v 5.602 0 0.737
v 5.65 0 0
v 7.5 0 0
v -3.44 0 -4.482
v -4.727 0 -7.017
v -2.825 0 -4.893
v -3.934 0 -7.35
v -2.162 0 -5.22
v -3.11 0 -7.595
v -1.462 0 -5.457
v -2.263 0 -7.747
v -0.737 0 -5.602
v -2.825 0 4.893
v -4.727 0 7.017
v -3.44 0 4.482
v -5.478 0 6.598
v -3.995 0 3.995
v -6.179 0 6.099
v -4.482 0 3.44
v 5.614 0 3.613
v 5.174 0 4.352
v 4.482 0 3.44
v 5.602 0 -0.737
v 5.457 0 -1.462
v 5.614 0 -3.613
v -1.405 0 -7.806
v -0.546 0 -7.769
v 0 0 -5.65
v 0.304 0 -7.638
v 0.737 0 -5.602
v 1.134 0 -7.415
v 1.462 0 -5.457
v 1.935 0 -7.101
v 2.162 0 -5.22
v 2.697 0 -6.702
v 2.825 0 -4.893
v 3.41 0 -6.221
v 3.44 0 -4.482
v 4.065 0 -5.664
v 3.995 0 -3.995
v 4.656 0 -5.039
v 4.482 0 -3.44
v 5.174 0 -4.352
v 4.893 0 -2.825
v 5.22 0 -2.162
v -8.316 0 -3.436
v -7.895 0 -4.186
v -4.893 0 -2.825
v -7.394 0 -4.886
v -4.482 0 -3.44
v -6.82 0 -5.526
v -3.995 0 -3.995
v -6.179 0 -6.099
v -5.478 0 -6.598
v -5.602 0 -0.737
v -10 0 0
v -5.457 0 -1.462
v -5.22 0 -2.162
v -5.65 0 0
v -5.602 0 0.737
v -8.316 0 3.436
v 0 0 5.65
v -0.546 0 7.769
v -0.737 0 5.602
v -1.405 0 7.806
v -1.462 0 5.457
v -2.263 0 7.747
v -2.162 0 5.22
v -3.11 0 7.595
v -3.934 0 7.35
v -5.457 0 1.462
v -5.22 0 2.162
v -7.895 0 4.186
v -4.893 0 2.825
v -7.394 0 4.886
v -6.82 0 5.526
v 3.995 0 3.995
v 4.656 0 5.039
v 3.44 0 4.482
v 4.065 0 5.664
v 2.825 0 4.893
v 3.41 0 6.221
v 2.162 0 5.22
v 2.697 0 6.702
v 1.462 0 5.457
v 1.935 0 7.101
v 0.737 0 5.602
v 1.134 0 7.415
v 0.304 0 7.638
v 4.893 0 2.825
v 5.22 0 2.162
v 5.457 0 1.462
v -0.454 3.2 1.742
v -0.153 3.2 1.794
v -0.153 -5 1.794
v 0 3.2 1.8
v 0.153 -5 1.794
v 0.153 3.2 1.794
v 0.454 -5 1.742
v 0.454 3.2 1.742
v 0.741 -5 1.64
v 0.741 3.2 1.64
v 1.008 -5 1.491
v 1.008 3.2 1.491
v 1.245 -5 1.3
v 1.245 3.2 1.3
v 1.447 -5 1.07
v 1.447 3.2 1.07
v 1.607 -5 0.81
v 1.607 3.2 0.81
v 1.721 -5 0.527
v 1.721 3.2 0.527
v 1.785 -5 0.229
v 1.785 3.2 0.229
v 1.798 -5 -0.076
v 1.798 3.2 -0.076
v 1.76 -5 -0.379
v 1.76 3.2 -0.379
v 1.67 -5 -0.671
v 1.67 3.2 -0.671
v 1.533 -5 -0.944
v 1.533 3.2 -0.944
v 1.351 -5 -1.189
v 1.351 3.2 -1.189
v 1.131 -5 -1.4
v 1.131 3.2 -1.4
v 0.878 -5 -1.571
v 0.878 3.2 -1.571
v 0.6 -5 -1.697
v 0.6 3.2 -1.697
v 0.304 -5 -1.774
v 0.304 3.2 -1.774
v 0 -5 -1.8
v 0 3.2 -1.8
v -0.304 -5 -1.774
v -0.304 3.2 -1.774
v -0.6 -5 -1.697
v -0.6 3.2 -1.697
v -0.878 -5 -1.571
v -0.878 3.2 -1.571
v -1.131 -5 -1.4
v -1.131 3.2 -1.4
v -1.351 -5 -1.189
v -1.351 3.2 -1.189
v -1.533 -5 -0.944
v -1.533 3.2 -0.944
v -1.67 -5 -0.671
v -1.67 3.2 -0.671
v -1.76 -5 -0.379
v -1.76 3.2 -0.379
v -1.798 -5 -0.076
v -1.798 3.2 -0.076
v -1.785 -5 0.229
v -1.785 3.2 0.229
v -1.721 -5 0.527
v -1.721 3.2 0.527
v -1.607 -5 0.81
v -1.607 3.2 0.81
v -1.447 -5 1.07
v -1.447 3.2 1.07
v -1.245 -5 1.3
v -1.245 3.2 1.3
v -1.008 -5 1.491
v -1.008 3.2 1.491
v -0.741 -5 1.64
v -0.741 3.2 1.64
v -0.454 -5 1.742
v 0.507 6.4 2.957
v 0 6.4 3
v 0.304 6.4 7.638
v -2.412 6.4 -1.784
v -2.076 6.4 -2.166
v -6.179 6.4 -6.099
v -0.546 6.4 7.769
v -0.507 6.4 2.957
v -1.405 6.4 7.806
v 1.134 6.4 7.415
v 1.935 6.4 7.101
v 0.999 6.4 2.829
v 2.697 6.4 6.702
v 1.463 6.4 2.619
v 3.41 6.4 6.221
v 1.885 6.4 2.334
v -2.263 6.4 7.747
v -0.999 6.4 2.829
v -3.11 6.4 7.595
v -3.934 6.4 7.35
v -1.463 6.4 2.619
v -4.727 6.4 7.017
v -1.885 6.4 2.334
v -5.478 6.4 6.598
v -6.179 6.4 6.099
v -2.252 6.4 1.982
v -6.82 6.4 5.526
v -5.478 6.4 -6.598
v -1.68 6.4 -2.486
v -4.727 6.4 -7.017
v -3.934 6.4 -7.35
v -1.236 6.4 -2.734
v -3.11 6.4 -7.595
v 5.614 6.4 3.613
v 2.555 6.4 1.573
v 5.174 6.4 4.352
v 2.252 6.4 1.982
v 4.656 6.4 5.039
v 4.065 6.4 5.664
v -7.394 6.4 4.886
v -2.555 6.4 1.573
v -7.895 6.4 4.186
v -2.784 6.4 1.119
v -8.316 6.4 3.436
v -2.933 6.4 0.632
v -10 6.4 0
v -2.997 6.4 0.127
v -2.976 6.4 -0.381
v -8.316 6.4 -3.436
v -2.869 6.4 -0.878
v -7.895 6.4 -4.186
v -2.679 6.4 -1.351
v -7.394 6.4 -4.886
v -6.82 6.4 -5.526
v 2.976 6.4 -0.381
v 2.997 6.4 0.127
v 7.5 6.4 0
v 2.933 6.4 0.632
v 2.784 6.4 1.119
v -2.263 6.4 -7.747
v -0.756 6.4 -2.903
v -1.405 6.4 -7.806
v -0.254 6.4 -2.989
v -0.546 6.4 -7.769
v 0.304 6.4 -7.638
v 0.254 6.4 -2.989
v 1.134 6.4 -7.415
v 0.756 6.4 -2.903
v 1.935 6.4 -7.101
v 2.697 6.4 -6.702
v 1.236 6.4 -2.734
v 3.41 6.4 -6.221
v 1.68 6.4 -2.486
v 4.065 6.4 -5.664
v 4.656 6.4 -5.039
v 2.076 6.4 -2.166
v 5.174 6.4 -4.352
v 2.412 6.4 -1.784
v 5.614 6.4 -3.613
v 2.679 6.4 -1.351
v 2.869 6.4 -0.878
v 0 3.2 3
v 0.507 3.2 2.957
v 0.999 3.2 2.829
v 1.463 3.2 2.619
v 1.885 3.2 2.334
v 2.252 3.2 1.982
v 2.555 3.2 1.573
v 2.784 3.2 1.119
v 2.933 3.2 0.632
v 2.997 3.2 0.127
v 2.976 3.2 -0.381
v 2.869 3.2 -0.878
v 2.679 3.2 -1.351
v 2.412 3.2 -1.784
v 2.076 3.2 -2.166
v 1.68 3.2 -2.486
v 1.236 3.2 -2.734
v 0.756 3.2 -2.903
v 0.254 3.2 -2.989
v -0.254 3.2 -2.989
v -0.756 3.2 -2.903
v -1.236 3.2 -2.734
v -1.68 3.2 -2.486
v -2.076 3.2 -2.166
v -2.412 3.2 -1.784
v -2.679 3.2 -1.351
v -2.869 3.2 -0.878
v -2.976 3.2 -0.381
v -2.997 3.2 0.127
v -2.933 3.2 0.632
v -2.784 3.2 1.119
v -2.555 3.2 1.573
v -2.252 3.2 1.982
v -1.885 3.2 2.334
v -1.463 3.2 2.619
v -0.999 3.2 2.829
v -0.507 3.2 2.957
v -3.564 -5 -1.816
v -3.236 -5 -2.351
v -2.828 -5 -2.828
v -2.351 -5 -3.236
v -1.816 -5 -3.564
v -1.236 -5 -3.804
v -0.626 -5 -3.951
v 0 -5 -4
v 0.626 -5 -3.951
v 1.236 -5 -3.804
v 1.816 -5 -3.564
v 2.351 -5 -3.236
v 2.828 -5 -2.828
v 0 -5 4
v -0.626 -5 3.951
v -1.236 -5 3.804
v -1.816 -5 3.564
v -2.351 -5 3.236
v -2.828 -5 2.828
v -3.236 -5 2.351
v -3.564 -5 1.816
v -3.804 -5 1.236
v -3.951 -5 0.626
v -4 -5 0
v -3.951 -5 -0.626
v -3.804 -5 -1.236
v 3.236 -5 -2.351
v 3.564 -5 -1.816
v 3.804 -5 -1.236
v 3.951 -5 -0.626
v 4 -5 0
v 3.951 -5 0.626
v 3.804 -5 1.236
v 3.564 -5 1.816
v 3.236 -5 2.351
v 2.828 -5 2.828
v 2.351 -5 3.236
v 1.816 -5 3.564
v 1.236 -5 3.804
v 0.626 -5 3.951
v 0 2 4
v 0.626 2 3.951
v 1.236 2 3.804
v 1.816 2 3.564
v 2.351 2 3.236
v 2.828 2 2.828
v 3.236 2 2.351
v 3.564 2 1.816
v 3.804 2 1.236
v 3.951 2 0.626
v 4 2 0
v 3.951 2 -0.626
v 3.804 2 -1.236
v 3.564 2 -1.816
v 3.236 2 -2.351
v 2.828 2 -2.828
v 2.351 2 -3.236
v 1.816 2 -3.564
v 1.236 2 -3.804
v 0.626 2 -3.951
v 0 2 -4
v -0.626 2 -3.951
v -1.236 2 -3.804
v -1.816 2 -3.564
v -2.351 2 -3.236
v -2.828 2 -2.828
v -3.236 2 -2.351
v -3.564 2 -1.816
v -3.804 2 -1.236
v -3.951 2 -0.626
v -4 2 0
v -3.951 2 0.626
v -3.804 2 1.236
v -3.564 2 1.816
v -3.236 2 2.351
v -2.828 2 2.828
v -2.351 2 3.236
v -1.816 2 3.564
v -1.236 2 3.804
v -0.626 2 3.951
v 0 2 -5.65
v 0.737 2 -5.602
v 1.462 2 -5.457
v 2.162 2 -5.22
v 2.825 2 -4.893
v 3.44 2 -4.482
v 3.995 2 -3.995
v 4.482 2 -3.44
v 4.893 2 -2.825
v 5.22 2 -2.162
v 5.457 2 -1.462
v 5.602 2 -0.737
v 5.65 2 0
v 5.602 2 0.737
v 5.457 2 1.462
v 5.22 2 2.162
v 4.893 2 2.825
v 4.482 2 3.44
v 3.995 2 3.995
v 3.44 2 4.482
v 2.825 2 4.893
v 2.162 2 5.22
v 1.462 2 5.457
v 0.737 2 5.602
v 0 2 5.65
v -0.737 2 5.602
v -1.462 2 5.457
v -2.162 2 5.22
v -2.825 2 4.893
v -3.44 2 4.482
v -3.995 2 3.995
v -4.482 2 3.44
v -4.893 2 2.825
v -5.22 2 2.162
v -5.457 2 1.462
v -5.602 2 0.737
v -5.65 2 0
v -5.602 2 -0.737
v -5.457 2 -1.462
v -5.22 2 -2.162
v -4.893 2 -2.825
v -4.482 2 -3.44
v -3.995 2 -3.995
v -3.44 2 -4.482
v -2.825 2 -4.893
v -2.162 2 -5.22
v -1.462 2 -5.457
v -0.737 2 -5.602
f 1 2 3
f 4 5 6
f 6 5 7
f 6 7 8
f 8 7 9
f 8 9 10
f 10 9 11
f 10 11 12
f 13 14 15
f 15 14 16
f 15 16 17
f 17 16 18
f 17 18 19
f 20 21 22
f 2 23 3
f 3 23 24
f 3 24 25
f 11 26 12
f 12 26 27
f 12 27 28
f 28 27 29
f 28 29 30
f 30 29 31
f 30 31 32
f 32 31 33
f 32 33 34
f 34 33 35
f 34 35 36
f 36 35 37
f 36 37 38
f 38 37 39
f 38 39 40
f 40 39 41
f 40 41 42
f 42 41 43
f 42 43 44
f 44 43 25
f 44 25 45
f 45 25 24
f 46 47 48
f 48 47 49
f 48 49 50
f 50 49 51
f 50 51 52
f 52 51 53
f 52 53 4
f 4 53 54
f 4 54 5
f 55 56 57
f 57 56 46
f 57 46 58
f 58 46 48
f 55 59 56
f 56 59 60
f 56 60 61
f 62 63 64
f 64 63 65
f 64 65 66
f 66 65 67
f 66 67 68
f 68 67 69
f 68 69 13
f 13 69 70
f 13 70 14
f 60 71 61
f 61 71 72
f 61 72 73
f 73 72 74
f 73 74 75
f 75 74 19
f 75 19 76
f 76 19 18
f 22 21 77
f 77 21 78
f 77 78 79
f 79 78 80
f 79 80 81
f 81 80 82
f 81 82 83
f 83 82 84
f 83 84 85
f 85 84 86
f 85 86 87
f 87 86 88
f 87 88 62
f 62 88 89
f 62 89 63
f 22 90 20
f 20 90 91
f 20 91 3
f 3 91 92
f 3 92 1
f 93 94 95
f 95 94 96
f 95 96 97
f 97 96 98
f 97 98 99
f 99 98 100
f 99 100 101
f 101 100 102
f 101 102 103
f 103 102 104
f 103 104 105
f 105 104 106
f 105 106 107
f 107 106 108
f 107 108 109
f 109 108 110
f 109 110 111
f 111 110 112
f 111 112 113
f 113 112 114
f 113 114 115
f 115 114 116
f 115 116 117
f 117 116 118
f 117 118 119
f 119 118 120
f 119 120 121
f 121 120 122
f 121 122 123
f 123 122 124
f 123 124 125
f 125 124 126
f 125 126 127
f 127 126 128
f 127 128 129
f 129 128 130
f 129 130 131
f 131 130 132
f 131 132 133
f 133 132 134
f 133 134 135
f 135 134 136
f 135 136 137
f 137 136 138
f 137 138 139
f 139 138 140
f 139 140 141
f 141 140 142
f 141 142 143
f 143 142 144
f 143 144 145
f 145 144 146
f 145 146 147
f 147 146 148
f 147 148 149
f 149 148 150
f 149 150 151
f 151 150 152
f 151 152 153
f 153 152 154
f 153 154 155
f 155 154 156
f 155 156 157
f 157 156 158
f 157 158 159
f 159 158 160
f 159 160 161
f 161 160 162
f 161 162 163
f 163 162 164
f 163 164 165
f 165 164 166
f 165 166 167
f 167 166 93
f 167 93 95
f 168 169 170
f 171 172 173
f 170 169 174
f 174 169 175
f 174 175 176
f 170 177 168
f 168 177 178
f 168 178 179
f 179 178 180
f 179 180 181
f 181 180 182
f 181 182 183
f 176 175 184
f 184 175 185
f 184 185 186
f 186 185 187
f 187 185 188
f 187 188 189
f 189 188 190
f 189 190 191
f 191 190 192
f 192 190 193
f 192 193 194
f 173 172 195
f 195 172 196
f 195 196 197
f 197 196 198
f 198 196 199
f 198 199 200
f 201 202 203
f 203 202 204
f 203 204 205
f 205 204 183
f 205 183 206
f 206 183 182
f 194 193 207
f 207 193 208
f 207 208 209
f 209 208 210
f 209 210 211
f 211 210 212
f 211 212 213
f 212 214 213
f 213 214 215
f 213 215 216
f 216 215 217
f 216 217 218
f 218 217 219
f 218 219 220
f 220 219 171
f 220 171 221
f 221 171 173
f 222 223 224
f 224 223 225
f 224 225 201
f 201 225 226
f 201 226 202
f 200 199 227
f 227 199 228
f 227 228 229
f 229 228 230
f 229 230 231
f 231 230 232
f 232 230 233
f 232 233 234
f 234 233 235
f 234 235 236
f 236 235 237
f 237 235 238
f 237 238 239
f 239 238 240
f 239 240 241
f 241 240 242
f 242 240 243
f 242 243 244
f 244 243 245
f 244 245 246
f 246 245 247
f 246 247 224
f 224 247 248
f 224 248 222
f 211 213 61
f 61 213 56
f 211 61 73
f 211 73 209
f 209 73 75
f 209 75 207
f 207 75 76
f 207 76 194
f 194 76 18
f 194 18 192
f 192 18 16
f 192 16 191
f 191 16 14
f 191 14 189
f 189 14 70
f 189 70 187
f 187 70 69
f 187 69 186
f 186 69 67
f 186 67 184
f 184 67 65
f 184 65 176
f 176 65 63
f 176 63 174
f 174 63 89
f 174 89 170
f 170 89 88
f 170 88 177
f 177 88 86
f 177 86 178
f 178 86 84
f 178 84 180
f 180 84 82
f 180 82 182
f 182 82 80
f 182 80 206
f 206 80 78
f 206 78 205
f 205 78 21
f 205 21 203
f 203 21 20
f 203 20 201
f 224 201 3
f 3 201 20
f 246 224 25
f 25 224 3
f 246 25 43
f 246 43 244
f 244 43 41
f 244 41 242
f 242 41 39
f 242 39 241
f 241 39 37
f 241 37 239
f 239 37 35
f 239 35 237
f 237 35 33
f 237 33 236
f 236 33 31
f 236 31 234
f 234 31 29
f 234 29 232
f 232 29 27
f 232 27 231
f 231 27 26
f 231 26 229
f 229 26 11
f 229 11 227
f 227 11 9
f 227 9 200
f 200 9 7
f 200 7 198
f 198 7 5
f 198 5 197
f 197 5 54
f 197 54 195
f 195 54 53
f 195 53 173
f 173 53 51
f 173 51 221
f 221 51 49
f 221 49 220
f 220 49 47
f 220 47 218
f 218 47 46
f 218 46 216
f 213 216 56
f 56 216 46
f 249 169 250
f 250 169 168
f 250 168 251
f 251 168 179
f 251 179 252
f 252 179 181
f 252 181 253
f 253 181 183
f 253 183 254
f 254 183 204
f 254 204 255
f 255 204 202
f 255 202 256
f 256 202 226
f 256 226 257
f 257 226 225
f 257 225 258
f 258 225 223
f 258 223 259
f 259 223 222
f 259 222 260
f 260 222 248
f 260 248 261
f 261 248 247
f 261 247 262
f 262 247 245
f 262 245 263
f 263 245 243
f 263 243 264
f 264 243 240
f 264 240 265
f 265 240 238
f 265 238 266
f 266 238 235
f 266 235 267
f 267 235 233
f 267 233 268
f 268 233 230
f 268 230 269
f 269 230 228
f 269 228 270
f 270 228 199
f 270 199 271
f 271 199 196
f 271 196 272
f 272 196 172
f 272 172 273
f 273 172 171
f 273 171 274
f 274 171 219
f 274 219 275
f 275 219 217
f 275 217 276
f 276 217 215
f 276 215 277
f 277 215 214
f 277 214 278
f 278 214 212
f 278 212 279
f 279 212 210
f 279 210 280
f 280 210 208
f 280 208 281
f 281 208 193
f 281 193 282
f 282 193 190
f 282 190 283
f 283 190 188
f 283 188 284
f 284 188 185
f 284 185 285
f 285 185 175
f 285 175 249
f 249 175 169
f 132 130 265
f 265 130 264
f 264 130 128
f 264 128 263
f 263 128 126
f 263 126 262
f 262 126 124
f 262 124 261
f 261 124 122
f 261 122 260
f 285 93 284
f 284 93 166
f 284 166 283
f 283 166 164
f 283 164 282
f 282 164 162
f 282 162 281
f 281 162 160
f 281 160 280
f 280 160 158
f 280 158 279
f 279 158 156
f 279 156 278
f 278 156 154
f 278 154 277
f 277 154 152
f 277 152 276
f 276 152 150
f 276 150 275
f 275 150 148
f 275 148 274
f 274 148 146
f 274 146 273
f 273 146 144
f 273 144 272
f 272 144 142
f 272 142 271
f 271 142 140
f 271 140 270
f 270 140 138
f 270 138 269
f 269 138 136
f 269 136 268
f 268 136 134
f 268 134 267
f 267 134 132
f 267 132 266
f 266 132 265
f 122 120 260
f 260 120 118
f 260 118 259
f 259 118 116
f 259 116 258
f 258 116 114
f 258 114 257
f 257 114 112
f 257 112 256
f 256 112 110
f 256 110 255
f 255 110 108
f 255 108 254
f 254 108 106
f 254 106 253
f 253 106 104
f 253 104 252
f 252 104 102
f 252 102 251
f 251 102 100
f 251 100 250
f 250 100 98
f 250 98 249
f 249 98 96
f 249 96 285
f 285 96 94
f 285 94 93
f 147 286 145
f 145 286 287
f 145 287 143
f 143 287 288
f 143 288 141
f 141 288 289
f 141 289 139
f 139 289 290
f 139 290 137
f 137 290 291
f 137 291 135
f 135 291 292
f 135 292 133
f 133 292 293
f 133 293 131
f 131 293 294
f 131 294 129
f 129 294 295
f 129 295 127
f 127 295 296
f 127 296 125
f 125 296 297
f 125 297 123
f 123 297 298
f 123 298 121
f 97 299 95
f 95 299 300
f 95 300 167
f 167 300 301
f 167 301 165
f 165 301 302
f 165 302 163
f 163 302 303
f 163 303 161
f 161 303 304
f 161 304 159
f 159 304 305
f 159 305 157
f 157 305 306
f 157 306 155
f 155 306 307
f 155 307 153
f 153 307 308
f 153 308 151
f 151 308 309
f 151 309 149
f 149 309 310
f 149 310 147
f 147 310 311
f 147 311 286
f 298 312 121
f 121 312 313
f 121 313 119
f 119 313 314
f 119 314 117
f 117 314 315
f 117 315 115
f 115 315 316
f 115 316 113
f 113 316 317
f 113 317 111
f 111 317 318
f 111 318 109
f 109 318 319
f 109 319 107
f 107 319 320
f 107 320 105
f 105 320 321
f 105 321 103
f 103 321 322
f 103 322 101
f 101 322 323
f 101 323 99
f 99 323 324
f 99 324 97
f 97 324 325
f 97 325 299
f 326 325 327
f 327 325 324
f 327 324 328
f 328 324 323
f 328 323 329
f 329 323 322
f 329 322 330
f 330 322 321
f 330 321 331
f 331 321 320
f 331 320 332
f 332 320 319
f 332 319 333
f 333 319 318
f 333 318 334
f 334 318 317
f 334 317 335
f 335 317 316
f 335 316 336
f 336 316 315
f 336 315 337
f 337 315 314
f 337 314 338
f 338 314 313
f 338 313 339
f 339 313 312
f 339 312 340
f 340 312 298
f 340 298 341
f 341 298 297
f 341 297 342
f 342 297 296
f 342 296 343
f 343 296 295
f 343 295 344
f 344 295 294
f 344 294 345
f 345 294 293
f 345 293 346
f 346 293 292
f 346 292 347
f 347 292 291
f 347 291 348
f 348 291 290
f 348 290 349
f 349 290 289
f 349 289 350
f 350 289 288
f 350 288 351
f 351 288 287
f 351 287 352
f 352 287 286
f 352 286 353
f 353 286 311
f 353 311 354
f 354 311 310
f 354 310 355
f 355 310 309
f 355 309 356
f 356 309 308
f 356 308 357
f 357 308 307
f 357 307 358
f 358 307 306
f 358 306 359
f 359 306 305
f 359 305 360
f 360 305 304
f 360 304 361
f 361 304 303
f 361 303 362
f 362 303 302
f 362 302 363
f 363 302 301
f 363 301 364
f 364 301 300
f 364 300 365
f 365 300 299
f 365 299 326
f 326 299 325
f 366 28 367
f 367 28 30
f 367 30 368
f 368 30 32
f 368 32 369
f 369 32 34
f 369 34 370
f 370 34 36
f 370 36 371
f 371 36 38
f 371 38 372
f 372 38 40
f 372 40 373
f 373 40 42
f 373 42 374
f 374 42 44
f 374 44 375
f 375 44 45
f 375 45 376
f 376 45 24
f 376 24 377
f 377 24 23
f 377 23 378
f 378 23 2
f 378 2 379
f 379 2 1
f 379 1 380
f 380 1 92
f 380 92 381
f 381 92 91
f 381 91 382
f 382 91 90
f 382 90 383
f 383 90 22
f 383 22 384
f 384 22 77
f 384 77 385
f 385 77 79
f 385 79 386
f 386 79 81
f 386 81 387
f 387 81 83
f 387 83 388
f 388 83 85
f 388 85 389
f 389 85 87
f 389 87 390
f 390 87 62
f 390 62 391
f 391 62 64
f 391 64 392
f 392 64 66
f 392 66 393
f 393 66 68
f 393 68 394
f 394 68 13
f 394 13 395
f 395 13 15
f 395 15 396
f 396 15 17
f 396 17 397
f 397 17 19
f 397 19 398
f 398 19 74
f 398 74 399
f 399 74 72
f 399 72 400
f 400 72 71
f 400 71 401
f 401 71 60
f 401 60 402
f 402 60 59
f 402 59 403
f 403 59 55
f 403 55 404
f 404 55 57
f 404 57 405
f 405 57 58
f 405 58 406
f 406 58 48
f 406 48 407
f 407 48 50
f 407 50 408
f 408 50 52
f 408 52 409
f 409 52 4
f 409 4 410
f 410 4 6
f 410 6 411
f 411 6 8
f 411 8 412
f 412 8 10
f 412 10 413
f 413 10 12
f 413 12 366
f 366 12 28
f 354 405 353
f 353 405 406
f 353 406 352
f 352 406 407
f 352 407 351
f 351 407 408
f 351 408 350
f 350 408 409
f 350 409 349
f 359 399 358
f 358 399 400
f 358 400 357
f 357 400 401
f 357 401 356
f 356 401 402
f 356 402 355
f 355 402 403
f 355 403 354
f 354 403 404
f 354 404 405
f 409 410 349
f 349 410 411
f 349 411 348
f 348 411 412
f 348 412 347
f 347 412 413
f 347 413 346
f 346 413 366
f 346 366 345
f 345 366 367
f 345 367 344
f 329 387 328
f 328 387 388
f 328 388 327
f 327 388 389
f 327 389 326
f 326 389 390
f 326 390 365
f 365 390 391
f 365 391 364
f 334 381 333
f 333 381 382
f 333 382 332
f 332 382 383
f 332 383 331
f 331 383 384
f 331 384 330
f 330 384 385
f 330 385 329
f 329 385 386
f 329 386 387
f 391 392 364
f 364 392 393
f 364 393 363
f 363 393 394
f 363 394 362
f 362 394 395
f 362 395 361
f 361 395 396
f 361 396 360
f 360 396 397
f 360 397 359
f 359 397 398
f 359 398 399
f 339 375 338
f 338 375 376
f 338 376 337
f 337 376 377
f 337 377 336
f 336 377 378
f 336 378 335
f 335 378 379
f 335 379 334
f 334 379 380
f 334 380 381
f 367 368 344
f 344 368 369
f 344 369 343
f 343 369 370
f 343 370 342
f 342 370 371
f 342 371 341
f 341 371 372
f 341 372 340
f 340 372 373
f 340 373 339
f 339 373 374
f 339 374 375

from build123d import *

# Parameters (mm, degrees)
SKETCH_1_R          = 1.8
EXTRUDE_1_DEPTH     = 6.4
SKETCH_7_R          = 3
CUT_EXTRUDE_1_DEPTH = 3.2
SKETCH_8_R          = 4
SKETCH_8_R_2        = 1.8
EXTRUDE_2_DEPTH     = 5
SKETCH_9_R          = 5.65
SKETCH_9_R_2        = 4
CUT_EXTRUDE_2_DEPTH = 2


with BuildPart() as part:
    # Эскиз1 → Бобышка-Вытянуть1 (new body)
    with BuildSketch(Plane(origin=(0, 0, 0), x_dir=(1, 0, 0), z_dir=(0, 1, 0))):
        with BuildLine():
            Line((-10, 0), (-8.31553819, 3.436118058))
            ThreePointArc((-8.31553819, 3.436118058), (-1.40535605, 7.805603403), (5.613555936, 3.613003503))
            Line((5.613555936, 3.613003503), (7.5, 0))
            Line((7.5, 0), (5.613555936, -3.613003503))
            ThreePointArc((5.613555936, -3.613003503), (-1.40535605, -7.805603403), (-8.31553819, -3.436118058))
            Line((-8.31553819, -3.436118058), (-10, 0))
        make_face()
        Circle(SKETCH_1_R, mode=Mode.SUBTRACT)
    extrude(amount=EXTRUDE_1_DEPTH)

    # Эскиз7 → Вырез-Вытянуть1 (cut)
    with BuildSketch(Plane(origin=(0, 6.4, 0), x_dir=(1, 0, 0), z_dir=(0, 1, 0))):
        Circle(SKETCH_7_R)
    extrude(amount=-CUT_EXTRUDE_1_DEPTH, mode=Mode.SUBTRACT)

    # Эскиз8 → Бобышка-Вытянуть2 (add)
    with BuildSketch(Plane.XZ):
        Circle(SKETCH_8_R)
        Circle(SKETCH_8_R_2, mode=Mode.SUBTRACT)
    extrude(amount=EXTRUDE_2_DEPTH)

    # Эскиз9 → Вырез-Вытянуть2 (cut)
    with BuildSketch(Plane.XZ):
        Circle(SKETCH_9_R)
        Circle(SKETCH_9_R_2, mode=Mode.SUBTRACT)
    extrude(amount=-CUT_EXTRUDE_2_DEPTH, mode=Mode.SUBTRACT)


solid = part.part
